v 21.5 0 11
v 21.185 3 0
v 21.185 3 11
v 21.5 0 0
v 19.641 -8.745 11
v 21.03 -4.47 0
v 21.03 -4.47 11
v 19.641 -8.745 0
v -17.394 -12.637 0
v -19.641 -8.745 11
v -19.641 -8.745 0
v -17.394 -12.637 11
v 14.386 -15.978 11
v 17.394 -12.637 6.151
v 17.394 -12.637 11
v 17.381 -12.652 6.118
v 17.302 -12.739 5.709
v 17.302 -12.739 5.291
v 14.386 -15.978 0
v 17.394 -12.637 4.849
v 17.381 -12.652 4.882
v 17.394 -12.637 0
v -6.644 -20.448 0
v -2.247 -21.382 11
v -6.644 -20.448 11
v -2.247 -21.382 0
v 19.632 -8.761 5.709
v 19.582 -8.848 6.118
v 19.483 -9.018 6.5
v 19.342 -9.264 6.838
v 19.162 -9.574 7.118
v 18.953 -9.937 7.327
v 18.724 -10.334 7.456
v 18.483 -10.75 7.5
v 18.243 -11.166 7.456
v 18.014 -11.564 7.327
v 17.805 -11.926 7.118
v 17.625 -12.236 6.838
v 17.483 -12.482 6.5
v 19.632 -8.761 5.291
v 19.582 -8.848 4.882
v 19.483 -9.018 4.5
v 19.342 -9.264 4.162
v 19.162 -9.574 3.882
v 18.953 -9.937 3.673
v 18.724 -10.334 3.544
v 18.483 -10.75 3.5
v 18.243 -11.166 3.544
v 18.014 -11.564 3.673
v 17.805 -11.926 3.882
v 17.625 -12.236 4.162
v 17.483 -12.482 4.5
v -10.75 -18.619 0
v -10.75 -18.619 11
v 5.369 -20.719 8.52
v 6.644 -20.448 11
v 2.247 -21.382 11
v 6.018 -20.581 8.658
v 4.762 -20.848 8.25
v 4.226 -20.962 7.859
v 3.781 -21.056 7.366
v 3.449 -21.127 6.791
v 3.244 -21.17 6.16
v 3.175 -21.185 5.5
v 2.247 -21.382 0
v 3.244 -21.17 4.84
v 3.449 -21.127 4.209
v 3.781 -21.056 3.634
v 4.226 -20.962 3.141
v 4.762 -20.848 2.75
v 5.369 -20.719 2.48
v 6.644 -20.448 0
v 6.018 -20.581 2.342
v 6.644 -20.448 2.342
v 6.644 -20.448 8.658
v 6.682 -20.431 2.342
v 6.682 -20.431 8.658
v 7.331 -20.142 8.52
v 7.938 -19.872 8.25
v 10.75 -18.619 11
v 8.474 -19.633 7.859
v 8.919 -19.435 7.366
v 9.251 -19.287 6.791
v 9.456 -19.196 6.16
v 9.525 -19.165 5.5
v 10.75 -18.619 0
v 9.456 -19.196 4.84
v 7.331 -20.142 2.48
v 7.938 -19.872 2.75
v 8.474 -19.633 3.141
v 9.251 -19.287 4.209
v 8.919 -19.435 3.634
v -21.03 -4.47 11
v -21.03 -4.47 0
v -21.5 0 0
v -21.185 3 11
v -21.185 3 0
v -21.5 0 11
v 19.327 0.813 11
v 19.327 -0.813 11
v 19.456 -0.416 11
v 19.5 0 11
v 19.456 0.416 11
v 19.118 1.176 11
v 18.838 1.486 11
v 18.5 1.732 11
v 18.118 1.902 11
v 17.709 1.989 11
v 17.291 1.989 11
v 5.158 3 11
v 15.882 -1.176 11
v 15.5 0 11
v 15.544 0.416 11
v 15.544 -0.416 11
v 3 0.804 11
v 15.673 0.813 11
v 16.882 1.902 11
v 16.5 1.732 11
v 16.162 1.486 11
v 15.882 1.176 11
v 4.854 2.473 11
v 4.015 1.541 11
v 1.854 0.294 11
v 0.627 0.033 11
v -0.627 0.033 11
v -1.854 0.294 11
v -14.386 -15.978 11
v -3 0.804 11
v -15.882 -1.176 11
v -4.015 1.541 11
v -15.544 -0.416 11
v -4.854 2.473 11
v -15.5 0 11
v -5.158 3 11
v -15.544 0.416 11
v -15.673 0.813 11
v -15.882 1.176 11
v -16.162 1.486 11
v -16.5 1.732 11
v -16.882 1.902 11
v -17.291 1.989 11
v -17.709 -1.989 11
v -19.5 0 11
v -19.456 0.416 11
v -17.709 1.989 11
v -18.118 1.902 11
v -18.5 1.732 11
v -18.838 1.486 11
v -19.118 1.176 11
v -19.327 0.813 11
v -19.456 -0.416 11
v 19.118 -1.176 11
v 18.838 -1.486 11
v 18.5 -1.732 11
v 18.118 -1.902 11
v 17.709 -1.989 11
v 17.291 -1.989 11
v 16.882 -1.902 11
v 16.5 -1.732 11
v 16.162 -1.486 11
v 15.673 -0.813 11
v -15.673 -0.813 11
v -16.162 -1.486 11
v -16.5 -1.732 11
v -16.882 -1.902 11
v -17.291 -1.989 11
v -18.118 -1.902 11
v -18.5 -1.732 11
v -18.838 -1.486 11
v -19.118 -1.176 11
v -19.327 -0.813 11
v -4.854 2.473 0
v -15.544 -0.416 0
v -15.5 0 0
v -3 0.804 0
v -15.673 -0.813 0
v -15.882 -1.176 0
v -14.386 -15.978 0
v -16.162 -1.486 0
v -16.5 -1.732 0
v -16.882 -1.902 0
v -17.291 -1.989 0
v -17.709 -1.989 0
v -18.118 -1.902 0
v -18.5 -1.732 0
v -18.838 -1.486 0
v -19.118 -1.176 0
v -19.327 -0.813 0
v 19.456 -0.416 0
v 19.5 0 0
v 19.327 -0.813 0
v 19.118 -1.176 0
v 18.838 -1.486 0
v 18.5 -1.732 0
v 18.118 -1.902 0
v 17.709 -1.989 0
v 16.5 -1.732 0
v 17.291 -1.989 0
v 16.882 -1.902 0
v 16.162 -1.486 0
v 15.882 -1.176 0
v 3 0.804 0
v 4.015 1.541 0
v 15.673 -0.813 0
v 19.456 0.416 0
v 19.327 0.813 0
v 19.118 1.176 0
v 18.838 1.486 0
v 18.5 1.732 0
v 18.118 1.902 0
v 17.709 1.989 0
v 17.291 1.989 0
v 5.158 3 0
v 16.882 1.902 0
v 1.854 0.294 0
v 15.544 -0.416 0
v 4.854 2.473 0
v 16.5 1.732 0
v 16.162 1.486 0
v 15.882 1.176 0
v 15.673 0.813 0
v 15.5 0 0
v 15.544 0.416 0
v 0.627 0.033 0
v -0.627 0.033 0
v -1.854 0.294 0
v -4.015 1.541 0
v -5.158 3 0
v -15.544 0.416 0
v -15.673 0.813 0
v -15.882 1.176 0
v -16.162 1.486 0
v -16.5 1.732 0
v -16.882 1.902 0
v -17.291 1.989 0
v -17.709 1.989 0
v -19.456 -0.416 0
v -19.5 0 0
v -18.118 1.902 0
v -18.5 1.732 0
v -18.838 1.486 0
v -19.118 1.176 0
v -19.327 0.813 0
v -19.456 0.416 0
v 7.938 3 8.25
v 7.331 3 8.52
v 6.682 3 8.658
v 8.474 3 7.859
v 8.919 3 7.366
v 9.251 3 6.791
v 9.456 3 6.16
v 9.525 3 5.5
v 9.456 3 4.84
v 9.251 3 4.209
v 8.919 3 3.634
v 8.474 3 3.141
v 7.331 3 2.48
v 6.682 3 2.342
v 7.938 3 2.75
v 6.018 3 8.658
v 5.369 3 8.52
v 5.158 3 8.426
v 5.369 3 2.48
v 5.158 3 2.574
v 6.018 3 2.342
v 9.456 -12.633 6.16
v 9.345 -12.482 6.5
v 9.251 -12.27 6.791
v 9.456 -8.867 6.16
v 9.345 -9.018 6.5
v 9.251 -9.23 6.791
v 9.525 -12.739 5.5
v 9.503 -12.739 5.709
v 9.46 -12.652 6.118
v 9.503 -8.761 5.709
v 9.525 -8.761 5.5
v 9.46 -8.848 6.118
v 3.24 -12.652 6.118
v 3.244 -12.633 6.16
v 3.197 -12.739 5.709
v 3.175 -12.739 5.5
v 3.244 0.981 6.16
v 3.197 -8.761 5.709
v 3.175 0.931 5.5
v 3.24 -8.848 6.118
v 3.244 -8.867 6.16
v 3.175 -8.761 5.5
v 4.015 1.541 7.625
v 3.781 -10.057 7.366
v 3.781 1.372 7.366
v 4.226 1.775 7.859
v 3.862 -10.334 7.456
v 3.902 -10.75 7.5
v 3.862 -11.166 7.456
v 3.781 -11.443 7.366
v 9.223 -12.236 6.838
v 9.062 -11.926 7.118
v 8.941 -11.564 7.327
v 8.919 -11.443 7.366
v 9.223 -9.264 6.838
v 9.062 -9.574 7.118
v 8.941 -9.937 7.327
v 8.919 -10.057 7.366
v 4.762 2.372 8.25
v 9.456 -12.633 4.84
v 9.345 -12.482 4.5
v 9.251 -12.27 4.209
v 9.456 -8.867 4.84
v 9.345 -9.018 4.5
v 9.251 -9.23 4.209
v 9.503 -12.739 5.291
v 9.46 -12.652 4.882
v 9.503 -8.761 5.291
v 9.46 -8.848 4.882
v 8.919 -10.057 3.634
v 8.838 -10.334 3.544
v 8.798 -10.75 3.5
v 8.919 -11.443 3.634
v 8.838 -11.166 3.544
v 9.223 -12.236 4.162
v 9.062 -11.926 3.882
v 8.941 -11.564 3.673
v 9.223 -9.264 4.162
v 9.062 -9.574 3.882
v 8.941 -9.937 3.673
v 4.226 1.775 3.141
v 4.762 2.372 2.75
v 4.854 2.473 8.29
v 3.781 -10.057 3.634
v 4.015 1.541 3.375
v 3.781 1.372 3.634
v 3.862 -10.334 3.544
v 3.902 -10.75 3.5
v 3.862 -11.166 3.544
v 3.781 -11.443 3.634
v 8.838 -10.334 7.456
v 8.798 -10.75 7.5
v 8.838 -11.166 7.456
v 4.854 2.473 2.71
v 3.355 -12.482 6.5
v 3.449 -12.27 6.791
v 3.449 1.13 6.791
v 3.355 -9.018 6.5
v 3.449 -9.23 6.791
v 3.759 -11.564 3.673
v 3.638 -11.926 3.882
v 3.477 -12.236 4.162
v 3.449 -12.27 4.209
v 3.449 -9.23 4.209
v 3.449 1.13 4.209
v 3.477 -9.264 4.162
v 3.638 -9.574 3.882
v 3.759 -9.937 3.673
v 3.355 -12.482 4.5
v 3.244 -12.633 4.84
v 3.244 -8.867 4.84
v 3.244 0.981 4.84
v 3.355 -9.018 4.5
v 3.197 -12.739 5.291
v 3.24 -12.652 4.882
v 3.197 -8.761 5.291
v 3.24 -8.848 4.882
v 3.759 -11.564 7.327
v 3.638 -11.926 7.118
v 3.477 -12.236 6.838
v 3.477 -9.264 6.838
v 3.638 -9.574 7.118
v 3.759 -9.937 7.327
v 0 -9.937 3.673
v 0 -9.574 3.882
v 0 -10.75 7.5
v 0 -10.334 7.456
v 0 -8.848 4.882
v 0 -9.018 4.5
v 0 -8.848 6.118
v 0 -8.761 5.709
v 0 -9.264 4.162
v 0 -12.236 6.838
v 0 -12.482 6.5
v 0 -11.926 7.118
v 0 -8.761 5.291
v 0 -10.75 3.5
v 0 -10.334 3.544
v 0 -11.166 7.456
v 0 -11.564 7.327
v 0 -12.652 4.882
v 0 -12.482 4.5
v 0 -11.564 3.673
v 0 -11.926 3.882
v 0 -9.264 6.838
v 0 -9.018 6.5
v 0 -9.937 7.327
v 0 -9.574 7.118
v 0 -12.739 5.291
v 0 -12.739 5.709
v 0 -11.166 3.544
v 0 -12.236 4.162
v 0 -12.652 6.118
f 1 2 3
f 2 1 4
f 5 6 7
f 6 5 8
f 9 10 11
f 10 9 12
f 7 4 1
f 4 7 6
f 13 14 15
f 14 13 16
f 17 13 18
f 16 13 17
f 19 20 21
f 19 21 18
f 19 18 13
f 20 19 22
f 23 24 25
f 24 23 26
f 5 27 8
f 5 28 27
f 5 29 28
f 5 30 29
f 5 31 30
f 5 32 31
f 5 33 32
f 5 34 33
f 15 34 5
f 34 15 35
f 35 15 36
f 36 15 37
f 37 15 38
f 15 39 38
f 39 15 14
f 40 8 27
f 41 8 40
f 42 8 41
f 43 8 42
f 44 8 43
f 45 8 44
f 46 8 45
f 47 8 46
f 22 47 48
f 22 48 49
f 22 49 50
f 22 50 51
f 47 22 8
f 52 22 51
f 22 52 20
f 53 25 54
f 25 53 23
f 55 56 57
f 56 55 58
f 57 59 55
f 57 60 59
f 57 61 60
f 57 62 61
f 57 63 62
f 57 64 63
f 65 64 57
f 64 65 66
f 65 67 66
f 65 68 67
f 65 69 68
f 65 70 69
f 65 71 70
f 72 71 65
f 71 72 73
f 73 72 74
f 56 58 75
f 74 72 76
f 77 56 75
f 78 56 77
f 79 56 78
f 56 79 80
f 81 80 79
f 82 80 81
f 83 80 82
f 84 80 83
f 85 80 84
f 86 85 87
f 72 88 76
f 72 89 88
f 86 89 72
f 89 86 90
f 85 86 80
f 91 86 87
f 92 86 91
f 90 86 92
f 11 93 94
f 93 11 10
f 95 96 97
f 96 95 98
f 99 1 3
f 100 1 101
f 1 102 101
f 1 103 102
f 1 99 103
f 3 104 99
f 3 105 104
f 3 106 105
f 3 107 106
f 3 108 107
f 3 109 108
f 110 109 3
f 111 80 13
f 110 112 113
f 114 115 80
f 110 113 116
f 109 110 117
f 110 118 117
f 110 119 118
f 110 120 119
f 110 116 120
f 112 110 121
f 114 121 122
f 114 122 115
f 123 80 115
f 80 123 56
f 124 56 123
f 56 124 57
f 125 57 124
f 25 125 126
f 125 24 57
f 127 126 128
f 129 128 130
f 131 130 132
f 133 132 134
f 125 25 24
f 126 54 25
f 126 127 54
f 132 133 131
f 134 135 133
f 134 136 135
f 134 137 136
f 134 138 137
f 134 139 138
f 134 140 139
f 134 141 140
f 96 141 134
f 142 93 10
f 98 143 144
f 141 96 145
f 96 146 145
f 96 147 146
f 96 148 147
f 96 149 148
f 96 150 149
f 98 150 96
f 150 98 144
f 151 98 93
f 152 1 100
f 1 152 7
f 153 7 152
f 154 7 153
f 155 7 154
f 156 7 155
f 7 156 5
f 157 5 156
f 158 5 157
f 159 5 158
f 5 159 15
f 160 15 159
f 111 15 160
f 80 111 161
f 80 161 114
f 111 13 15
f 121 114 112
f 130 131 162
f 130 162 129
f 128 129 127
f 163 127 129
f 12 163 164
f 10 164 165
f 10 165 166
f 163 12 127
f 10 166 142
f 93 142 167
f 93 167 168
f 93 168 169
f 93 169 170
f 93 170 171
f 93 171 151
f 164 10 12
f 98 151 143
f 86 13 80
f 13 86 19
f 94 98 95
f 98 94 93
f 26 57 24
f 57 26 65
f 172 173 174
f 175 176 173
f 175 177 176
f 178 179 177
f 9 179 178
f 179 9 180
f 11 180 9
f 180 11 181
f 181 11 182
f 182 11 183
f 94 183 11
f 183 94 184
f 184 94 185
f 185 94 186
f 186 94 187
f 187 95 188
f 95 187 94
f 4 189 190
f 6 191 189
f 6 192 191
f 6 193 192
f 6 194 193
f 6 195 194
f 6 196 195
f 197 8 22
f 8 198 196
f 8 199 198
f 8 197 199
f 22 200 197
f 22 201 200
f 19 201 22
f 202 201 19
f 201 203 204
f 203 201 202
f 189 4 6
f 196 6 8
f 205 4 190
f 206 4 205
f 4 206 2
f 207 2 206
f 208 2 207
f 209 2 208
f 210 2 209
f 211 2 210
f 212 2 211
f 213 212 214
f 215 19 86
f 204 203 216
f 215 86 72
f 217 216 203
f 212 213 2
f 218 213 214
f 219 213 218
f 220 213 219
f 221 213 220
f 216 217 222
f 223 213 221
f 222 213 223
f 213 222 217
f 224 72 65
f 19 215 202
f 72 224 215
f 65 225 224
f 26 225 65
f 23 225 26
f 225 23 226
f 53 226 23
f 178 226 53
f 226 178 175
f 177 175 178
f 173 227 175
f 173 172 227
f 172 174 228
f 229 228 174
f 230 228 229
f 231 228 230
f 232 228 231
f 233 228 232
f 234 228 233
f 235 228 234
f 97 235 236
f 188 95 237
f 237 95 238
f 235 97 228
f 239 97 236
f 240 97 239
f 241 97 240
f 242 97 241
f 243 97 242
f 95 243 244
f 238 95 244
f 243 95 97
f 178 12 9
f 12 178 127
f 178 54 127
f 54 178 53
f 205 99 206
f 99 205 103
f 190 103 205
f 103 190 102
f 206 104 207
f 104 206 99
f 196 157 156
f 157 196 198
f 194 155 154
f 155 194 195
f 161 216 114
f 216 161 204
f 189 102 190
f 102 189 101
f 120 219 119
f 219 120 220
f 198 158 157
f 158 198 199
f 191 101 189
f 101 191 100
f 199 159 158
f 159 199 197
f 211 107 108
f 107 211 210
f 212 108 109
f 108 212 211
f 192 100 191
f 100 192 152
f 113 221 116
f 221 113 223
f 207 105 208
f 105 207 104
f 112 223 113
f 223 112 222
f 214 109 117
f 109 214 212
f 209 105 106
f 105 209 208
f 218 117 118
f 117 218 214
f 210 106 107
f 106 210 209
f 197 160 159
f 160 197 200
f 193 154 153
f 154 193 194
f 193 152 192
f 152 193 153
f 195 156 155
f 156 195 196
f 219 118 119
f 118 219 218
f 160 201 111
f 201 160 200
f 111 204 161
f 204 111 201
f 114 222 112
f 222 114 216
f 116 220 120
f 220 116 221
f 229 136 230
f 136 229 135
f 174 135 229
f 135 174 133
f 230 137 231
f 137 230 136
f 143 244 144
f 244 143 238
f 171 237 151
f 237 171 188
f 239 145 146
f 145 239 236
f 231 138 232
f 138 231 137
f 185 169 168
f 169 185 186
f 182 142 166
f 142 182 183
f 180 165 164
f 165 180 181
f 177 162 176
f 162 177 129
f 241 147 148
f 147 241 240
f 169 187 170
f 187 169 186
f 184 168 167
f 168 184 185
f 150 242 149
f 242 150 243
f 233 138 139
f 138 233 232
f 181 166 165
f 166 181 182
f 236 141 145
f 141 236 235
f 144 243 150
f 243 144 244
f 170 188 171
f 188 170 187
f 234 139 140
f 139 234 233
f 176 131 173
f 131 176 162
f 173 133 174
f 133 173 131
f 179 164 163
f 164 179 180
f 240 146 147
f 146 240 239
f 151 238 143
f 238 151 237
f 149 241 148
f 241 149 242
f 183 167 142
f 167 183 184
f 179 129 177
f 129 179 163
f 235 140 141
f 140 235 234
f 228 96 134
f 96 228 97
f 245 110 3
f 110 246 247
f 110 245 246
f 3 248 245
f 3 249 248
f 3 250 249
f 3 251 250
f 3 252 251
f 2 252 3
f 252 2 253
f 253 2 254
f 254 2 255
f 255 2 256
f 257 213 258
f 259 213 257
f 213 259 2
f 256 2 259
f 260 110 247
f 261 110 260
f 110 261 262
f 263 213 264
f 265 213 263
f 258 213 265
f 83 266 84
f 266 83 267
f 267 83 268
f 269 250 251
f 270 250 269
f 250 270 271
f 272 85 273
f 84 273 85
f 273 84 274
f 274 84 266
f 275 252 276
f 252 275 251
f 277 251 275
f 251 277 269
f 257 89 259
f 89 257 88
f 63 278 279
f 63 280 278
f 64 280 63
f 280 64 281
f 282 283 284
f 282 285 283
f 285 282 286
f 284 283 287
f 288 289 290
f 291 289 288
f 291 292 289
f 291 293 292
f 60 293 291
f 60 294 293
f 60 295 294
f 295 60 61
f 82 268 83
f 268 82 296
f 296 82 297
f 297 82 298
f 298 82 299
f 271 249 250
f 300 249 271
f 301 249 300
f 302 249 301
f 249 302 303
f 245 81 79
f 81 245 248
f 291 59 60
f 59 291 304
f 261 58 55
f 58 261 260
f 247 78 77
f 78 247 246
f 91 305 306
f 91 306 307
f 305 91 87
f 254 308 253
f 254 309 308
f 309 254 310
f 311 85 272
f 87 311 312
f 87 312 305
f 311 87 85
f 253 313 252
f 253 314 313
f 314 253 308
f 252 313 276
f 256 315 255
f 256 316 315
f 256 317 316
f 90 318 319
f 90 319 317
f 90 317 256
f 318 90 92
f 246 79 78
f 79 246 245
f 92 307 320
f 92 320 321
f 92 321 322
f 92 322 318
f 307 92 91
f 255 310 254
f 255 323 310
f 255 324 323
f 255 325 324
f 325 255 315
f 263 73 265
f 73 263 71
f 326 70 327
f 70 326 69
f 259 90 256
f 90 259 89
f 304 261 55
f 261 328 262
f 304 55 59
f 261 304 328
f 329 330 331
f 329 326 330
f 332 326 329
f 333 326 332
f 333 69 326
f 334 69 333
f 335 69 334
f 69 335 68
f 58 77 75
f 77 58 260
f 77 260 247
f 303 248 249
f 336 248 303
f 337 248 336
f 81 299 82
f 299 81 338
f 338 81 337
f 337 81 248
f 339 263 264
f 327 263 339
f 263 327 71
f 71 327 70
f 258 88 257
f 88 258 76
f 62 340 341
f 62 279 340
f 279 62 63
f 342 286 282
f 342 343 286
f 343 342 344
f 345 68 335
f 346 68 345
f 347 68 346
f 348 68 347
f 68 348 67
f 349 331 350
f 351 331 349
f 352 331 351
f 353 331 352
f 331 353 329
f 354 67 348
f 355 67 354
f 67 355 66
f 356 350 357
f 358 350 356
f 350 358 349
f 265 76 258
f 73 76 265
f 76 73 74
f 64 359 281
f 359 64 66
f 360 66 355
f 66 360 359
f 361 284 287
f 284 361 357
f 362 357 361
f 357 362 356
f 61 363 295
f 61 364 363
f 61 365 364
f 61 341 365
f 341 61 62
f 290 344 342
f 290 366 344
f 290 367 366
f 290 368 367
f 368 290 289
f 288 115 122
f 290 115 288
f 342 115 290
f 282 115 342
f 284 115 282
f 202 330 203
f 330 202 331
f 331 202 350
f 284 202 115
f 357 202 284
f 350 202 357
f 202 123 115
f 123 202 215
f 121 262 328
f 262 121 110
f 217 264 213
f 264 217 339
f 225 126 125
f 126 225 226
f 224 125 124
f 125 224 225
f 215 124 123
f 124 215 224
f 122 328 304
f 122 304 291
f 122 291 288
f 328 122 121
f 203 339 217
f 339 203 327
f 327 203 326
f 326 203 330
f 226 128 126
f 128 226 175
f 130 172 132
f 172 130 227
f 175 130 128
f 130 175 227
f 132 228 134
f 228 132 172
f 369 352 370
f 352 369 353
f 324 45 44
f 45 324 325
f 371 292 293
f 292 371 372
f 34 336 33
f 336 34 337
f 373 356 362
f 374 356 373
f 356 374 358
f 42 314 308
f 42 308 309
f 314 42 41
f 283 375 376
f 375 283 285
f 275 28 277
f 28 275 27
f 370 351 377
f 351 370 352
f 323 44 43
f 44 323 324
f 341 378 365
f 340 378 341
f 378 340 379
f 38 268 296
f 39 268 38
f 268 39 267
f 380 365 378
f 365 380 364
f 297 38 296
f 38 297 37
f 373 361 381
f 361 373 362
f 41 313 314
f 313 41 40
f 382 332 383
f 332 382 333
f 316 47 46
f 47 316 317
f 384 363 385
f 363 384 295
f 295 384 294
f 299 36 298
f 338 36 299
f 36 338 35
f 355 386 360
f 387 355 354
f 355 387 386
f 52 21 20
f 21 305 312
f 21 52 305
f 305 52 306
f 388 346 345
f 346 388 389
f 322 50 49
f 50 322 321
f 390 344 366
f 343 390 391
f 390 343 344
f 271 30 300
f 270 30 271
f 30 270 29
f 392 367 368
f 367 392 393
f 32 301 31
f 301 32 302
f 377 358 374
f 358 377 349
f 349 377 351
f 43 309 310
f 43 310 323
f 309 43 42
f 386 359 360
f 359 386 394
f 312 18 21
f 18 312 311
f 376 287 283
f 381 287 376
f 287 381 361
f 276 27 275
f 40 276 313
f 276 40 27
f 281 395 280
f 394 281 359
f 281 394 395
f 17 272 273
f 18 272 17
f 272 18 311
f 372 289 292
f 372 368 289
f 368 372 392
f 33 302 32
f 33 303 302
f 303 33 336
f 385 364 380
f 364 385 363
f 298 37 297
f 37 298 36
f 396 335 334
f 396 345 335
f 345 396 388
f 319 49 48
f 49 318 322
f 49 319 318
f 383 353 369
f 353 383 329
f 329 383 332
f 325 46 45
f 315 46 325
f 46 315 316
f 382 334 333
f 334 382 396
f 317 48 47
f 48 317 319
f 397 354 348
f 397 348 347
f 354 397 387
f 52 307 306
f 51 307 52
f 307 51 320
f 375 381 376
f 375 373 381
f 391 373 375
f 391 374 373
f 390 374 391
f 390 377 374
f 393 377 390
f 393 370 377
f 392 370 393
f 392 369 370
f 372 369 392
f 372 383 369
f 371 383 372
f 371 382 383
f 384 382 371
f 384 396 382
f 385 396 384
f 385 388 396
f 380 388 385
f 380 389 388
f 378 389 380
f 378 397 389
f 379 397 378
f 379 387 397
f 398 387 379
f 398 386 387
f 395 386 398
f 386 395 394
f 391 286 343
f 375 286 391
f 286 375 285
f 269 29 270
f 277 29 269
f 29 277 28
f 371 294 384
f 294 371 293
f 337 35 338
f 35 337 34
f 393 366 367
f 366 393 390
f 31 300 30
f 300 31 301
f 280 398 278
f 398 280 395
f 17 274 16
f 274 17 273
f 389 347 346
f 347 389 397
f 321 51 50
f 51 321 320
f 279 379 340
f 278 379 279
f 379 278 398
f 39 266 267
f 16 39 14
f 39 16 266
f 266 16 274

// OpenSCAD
$fn = 30;
hole = 4; // flange mounting hole
width = 43; // overall width
spacing = 39 - hole; // flange hole spacing on center
height = 11;

tube_offset = 5;
tube_dia = 25.4 * 0.25;
flange_dia = 10;

fudge = 2;


module m4_insert(h) {
        cylinder(d = 4, h = h);
     
}

difference() {
    difference() {
        cylinder(h = height, d = width);
        translate([spacing/2, 0]) cylinder(h = height, d = hole);
        translate([-spacing/2, 0]) cylinder(h = height, d = hole);
    }
    translate([-width/2, 3]) cube([width,width,width]);
    translate([tube_dia, width/2, height/2]) rotate([90, 0, 0]) cylinder(d = tube_dia, h = width);
    translate([0, 6]) cylinder(d = flange_dia + fudge, h = height);
    translate([0,-width/4, height/2]) rotate([0, 90, 0]) m4_insert(h = width);
}
